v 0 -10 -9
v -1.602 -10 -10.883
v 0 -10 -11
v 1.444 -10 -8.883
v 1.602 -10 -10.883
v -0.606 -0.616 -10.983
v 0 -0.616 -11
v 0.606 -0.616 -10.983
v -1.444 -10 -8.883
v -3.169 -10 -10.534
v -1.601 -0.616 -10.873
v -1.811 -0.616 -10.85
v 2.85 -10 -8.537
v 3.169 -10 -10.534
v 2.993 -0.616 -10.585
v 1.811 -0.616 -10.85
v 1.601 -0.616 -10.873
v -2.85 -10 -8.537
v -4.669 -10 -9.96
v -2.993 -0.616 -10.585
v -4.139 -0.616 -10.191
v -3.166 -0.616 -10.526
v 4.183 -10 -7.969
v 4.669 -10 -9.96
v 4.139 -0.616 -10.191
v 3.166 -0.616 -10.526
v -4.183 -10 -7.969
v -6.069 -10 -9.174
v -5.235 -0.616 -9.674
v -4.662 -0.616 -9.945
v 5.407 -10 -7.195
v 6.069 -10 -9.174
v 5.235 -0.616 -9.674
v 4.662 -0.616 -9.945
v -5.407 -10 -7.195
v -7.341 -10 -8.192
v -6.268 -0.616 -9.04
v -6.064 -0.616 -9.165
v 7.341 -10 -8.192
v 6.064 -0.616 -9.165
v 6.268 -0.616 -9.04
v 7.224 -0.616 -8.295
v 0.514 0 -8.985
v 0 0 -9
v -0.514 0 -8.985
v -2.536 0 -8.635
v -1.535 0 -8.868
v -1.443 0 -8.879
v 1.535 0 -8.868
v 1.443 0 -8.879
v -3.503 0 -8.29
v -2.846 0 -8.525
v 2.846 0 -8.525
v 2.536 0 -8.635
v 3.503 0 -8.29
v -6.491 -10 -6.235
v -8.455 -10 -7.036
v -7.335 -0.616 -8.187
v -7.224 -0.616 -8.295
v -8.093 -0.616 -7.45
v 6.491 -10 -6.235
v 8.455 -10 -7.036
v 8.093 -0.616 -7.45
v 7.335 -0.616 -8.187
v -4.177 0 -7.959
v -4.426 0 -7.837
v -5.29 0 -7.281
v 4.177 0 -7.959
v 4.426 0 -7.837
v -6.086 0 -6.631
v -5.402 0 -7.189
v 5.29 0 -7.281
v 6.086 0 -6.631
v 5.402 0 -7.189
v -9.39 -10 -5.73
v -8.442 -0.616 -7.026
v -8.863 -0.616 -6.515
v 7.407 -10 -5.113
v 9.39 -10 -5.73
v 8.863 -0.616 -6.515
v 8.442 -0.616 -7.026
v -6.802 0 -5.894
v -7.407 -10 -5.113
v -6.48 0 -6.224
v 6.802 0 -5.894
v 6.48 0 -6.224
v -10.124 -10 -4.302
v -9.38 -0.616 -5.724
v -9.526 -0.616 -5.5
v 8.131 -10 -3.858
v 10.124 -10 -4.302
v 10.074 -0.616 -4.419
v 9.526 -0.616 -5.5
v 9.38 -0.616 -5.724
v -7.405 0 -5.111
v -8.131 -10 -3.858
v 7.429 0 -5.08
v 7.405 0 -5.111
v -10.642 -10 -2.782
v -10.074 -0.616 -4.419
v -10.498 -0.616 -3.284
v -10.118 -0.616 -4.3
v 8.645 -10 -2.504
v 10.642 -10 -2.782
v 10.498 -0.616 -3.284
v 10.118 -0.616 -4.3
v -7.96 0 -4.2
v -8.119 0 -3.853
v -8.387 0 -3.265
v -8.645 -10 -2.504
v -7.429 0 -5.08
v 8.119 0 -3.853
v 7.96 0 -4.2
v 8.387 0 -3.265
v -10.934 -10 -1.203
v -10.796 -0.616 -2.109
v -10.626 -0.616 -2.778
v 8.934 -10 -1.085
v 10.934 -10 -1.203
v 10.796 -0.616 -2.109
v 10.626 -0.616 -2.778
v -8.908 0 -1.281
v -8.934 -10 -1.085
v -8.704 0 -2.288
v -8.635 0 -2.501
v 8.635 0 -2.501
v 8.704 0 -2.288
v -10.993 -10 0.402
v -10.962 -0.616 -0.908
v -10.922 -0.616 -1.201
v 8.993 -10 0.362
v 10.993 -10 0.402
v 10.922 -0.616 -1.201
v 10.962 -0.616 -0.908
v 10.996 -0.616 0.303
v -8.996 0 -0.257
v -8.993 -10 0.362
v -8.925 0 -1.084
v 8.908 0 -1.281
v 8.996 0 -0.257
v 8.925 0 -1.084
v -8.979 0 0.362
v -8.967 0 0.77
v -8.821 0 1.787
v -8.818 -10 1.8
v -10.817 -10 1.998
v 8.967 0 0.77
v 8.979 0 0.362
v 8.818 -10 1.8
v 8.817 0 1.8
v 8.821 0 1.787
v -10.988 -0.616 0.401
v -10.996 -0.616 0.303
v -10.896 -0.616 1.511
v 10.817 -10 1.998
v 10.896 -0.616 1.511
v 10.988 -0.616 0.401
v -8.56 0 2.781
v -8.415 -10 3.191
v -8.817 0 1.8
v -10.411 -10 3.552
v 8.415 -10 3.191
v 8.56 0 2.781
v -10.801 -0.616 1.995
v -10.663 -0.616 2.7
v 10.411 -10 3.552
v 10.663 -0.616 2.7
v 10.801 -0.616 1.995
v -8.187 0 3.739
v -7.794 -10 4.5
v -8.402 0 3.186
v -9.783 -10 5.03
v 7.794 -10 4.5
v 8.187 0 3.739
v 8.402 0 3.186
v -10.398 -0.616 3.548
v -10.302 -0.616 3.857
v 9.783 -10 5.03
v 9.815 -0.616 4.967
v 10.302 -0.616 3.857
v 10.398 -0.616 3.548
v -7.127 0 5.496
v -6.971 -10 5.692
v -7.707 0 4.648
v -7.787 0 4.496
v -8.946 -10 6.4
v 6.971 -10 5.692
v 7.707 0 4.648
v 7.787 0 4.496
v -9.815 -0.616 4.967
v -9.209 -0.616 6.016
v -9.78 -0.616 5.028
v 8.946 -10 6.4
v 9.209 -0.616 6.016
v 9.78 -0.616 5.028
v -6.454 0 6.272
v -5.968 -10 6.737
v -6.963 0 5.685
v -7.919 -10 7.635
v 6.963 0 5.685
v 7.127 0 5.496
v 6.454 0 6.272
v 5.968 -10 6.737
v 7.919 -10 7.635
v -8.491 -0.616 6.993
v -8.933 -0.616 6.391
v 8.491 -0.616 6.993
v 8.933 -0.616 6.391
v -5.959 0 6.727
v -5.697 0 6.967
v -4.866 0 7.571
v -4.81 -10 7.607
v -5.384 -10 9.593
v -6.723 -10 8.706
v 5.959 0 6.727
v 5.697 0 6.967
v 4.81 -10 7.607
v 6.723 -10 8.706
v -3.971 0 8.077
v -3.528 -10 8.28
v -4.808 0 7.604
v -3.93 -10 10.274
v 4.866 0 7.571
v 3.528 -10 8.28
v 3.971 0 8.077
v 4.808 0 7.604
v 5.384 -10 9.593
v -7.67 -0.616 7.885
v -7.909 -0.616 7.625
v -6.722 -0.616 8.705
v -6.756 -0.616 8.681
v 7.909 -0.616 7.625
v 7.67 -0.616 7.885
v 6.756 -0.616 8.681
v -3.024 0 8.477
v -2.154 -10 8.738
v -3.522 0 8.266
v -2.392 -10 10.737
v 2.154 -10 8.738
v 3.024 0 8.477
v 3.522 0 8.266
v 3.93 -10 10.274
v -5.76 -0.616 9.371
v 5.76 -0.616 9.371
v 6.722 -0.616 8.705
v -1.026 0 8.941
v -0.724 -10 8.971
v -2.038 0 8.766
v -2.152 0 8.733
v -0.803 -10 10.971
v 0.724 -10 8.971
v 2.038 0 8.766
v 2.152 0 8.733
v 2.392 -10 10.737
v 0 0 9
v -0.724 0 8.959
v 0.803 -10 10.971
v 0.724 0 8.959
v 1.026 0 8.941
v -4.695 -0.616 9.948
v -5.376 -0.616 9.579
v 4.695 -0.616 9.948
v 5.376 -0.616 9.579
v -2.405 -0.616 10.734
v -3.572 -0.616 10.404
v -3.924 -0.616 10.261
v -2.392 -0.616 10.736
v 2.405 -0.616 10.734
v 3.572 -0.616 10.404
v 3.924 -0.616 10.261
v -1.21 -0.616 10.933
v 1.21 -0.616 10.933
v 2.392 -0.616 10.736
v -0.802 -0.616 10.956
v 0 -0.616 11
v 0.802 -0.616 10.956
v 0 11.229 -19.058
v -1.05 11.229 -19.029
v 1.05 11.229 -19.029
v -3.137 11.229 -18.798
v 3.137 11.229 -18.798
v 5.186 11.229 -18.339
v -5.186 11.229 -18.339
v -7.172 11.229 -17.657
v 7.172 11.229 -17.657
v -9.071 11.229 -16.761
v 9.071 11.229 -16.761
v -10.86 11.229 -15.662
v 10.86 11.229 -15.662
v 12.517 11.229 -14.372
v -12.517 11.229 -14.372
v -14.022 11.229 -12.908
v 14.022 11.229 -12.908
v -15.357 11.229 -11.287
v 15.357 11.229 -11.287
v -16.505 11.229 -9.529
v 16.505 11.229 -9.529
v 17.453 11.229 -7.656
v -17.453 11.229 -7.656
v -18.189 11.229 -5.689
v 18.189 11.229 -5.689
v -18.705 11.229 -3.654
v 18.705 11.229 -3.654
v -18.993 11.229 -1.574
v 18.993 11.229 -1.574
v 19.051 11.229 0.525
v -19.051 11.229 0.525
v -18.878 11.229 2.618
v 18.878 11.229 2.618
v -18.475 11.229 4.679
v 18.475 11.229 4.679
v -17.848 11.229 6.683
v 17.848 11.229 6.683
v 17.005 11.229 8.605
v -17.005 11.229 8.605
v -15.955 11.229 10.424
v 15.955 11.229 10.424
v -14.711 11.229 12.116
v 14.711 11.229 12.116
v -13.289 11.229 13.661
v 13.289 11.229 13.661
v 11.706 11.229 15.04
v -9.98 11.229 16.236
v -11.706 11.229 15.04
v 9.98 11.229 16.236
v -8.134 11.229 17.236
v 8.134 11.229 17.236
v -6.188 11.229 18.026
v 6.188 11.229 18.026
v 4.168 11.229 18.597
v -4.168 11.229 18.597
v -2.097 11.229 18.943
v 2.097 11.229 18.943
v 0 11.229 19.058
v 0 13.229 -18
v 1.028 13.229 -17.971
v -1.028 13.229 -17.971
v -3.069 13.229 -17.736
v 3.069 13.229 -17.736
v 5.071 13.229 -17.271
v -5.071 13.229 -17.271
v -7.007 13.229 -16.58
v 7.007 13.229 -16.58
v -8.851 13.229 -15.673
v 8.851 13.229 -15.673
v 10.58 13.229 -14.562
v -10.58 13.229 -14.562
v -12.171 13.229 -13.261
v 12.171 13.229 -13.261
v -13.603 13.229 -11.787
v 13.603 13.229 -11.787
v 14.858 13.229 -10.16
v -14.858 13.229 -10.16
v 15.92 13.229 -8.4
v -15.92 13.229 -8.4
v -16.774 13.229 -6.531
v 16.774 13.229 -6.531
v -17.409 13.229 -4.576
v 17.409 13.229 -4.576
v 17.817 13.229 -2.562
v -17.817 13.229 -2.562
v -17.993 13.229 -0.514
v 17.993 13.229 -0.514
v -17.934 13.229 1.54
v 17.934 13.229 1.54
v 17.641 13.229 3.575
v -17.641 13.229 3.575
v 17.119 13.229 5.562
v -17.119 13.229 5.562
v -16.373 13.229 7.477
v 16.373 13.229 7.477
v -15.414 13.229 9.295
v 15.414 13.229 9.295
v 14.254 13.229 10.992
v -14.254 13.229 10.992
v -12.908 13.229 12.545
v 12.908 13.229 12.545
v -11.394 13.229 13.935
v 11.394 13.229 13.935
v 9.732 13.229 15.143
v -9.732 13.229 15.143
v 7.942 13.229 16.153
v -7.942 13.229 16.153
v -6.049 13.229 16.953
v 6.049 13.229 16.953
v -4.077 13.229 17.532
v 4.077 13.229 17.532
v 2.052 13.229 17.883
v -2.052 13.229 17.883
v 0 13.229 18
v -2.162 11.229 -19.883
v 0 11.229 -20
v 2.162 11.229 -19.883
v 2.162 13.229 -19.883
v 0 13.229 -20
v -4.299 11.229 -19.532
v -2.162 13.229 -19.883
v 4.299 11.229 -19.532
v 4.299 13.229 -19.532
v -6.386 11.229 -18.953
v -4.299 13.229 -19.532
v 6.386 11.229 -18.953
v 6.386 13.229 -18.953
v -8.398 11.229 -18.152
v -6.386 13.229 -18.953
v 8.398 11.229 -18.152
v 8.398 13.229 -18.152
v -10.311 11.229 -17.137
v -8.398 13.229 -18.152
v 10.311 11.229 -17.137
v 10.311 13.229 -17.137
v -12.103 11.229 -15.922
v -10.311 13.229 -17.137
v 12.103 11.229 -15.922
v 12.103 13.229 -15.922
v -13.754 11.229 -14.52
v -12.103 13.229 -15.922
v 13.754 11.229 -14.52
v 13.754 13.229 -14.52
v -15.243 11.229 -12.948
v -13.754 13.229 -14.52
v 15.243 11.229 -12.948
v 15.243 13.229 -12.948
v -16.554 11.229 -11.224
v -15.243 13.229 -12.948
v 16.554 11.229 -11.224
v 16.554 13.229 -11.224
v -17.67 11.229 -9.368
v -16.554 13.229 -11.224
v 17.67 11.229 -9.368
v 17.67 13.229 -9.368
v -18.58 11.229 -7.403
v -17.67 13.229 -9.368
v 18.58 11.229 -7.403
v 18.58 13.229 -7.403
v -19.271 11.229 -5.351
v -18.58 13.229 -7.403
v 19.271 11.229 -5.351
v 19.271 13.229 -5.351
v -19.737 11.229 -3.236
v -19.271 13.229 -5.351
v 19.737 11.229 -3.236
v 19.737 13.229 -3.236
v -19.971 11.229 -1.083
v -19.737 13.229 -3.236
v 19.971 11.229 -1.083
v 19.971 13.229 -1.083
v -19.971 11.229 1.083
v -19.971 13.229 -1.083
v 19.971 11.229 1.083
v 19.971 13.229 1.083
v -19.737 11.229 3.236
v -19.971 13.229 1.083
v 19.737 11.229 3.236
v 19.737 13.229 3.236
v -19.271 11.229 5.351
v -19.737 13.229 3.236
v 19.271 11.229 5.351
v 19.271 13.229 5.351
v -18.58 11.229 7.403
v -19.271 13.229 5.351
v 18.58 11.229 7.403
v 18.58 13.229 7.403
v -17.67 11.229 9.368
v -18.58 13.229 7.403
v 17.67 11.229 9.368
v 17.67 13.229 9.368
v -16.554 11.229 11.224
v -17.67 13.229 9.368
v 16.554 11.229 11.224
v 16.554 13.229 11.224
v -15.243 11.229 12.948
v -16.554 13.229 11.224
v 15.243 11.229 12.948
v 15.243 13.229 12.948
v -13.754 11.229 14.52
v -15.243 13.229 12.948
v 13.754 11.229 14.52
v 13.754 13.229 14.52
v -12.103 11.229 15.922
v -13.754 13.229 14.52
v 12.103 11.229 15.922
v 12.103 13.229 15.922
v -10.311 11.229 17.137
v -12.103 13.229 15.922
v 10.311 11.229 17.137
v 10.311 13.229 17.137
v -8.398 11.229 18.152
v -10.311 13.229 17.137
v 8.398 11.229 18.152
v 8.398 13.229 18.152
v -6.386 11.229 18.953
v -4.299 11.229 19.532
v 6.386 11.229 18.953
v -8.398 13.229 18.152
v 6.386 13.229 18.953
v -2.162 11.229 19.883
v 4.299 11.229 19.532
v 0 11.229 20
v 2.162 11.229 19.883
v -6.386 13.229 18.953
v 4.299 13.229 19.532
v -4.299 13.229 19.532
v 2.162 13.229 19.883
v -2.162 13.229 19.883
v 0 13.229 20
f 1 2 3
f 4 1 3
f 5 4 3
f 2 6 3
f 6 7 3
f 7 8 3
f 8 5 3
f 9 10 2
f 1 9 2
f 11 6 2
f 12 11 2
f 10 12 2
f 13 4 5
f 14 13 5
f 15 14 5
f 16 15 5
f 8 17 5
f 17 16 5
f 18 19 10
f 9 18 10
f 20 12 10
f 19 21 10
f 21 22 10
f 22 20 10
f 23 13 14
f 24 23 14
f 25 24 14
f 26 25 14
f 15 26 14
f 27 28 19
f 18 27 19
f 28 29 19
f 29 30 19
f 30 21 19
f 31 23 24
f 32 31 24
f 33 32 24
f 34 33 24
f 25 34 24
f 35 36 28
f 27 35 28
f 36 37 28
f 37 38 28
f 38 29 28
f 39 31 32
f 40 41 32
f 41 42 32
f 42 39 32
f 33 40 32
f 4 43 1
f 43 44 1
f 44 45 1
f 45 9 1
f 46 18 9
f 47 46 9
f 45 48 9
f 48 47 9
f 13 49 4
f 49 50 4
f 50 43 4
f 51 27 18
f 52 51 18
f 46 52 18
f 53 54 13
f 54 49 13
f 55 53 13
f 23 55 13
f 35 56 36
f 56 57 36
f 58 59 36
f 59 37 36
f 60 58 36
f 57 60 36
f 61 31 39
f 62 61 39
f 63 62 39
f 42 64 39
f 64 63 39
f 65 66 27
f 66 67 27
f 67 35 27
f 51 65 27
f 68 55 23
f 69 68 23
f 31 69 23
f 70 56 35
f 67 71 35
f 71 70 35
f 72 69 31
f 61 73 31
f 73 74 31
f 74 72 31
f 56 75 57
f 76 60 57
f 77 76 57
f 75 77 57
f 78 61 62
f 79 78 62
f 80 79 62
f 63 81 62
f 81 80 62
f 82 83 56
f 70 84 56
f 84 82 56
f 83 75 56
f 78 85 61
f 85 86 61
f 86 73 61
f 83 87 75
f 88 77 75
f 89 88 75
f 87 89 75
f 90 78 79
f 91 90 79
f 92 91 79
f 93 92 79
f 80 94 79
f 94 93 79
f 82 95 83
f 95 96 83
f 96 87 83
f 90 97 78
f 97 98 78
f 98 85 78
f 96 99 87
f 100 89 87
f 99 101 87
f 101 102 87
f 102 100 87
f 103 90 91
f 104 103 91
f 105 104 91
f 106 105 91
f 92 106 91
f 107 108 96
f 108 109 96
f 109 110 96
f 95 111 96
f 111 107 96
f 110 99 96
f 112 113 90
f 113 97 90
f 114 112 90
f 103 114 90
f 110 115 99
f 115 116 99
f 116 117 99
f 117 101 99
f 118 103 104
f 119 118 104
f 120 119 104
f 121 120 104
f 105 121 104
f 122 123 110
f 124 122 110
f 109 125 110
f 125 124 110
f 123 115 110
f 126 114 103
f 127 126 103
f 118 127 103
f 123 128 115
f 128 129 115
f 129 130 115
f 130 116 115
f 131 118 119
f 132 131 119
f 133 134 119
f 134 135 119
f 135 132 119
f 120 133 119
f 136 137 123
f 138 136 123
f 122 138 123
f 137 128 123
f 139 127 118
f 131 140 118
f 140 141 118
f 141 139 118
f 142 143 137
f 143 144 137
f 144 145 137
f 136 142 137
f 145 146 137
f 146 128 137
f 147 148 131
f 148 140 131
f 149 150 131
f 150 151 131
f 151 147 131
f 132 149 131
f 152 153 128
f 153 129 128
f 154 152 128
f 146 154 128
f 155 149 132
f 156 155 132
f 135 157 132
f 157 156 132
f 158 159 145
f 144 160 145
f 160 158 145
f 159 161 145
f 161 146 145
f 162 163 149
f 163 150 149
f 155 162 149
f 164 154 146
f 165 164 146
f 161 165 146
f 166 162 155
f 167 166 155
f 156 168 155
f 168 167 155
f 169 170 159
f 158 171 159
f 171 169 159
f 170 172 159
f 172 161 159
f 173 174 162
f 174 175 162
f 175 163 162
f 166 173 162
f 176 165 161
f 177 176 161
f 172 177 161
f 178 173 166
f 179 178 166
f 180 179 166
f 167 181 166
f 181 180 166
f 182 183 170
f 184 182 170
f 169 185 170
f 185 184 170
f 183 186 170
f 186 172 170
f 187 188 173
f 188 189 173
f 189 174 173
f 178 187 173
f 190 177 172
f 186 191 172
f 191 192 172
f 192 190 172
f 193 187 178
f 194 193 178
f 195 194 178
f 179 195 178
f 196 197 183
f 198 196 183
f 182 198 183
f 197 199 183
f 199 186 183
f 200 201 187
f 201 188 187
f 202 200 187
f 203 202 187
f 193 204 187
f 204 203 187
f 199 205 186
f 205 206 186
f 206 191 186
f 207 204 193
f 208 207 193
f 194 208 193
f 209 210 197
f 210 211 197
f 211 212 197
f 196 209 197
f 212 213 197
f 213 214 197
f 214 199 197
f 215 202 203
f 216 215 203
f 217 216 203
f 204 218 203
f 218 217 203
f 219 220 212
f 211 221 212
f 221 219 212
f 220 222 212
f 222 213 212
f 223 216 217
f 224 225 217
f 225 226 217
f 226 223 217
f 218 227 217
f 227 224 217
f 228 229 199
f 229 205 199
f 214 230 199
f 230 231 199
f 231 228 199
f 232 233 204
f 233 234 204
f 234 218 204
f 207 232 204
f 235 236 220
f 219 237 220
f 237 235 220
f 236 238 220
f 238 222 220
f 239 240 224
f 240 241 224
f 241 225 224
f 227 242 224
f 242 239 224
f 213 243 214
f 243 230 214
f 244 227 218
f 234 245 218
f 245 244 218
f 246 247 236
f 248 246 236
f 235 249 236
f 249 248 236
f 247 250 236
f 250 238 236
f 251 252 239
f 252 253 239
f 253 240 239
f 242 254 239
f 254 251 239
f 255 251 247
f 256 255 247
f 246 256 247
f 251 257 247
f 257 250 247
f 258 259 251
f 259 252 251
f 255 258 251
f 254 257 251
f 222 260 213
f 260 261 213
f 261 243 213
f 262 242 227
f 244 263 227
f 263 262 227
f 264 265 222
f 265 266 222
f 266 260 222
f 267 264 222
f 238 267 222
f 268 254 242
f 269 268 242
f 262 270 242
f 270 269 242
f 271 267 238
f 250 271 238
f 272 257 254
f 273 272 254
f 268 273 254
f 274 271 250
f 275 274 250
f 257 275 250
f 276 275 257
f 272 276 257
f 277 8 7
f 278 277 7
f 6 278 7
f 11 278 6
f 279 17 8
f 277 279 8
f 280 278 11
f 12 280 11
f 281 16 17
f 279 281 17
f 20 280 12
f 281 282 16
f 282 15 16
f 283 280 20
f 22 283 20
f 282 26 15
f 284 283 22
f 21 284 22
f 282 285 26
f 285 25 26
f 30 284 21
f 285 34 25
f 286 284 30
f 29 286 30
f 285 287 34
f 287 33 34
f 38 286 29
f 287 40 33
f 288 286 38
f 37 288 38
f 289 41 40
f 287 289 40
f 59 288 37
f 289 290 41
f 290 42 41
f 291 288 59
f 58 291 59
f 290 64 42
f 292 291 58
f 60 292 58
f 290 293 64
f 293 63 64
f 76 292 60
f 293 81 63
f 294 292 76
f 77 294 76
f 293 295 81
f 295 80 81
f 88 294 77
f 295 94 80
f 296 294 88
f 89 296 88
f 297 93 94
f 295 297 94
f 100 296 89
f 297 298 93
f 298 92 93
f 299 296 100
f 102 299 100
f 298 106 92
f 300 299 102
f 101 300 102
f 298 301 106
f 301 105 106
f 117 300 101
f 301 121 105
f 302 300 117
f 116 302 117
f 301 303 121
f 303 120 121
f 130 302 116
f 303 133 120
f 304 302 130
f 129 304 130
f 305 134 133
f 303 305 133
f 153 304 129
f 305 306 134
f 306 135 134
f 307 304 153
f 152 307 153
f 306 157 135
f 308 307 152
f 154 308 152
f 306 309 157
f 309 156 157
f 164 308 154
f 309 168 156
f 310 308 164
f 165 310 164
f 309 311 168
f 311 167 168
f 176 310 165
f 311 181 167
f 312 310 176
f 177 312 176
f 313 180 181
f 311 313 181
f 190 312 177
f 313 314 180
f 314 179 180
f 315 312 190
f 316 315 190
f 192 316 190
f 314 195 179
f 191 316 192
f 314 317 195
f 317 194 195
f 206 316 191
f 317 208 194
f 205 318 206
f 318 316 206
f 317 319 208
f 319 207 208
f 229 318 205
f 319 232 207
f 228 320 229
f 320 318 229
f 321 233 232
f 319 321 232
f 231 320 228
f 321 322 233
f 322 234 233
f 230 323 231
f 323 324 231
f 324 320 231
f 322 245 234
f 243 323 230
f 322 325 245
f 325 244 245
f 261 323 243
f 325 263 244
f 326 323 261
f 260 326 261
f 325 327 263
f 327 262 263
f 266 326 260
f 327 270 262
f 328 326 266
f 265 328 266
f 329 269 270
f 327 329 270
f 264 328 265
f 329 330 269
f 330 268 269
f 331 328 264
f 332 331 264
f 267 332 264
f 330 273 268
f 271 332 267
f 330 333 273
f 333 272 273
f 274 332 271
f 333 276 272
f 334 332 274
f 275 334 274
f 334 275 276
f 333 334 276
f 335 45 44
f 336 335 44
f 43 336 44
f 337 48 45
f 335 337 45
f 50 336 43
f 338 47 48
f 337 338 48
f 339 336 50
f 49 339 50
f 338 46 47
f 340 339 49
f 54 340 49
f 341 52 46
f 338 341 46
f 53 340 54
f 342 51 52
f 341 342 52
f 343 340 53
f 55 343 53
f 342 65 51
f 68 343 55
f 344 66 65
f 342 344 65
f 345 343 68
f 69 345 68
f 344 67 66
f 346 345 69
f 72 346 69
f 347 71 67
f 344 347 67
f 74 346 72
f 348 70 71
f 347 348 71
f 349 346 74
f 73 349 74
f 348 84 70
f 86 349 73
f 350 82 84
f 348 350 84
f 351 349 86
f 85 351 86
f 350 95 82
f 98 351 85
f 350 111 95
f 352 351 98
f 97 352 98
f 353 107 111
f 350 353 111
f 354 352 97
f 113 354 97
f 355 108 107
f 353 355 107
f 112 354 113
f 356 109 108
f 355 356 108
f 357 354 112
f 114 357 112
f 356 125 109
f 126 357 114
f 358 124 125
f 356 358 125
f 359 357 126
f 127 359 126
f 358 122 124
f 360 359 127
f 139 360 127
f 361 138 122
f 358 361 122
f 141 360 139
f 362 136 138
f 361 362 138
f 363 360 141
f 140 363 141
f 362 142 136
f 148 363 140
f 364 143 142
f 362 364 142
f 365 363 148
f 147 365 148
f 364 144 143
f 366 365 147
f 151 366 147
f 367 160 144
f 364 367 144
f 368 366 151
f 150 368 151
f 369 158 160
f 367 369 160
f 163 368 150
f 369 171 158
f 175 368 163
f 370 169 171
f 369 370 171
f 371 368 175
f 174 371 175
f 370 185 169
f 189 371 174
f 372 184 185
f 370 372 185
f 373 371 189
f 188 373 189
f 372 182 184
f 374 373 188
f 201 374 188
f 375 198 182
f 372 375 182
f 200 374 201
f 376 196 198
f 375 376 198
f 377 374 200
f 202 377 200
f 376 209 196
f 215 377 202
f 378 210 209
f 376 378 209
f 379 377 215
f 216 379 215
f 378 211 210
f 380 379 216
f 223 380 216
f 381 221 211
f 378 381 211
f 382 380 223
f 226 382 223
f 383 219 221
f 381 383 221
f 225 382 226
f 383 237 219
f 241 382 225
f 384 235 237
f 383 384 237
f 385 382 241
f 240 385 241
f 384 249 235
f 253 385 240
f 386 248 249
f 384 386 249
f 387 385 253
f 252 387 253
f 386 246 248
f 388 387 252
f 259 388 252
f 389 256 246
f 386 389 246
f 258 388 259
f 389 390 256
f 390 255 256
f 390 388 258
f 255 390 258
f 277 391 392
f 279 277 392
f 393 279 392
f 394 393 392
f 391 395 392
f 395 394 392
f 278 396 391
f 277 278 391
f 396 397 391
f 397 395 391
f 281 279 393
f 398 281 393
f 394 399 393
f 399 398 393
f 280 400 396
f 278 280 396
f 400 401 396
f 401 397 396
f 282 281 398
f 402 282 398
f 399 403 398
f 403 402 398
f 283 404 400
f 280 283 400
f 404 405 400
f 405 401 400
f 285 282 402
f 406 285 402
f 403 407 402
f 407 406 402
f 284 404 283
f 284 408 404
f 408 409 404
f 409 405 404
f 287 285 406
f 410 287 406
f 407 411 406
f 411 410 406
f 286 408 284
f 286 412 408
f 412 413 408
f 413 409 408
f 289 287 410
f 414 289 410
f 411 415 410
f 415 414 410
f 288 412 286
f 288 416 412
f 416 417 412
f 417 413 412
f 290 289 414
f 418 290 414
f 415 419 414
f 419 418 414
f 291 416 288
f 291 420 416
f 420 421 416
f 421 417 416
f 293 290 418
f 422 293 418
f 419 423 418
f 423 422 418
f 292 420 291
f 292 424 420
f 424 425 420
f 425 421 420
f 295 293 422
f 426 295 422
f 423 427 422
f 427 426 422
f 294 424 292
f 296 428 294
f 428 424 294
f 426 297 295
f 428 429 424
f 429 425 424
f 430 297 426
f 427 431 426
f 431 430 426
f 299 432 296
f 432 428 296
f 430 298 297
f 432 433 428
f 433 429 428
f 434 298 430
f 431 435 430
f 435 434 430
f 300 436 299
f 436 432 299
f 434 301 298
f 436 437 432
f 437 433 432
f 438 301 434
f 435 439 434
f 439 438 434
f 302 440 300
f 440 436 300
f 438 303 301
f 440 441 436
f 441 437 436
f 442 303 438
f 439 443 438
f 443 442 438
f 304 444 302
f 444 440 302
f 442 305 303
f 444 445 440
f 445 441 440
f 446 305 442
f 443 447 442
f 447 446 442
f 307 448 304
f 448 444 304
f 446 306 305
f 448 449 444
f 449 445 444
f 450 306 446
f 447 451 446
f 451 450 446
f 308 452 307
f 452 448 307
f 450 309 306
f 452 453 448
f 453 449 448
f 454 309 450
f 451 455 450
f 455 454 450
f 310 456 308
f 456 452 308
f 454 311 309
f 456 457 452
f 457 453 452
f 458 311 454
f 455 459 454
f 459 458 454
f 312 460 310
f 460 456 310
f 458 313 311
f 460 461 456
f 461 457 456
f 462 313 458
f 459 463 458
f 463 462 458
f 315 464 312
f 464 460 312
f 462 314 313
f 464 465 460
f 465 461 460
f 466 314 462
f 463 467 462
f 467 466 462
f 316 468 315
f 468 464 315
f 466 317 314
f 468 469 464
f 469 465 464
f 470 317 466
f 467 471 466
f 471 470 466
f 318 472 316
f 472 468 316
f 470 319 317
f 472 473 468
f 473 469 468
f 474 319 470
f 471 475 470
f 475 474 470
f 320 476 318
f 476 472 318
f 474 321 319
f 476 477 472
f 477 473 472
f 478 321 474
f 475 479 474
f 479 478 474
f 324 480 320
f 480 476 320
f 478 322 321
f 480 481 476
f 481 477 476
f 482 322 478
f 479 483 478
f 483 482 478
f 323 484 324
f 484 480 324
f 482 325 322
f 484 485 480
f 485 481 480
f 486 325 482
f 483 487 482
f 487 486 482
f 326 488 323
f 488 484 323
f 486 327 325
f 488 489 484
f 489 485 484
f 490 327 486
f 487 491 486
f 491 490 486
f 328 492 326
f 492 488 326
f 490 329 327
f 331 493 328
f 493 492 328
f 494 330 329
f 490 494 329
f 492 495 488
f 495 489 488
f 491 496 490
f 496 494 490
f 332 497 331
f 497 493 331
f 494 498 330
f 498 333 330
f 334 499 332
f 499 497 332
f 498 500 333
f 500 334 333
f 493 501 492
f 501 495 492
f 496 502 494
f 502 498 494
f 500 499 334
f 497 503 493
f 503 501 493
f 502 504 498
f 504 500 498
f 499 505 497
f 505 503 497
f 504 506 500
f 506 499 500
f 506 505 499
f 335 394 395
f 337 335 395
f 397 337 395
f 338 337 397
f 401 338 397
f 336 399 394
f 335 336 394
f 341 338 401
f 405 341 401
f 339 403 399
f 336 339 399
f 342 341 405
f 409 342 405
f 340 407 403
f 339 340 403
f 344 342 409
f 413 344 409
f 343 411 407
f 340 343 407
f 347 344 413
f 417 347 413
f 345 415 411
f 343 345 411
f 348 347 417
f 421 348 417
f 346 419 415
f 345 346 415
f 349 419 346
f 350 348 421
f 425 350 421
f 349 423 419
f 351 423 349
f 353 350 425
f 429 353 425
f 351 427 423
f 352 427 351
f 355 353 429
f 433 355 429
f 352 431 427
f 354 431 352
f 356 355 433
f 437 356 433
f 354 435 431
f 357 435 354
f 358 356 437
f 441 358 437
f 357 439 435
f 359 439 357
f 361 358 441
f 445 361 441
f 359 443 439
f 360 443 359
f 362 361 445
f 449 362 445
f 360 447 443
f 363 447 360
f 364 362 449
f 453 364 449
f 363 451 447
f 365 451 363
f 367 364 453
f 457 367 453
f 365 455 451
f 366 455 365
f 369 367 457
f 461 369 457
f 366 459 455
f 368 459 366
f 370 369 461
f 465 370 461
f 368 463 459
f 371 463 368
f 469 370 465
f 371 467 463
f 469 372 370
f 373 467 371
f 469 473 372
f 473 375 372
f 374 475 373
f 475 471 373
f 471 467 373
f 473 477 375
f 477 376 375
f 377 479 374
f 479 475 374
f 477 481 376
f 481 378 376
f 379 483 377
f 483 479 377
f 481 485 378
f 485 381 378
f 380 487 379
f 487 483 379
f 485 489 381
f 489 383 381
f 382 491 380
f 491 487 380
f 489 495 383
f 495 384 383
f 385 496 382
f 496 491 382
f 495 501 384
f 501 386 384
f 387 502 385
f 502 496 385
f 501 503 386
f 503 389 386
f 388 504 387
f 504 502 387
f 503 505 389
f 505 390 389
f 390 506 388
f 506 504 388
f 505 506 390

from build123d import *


with BuildPart() as part:
    # Sketch1 → Revolve-Thin3 (revolve)
    with BuildSketch(Plane.XY, mode=Mode.PRIVATE) as revolve_thin3_sk:
        Polygon((-20, 13.228756555), (-18, 13.228756555), (-9, 0), (-9, -10), (-11, -10), (-11, -0.615831877), (-19.058300524, 11.228756555), (-20, 11.228756555), align=None)
    revolve(revolve_thin3_sk.sketch.rotate(Axis((0, 0, 0), (0, 1, 0)), 270), axis=Axis((0, 0, 0), (0, 1, 0)))


solid = part.part
